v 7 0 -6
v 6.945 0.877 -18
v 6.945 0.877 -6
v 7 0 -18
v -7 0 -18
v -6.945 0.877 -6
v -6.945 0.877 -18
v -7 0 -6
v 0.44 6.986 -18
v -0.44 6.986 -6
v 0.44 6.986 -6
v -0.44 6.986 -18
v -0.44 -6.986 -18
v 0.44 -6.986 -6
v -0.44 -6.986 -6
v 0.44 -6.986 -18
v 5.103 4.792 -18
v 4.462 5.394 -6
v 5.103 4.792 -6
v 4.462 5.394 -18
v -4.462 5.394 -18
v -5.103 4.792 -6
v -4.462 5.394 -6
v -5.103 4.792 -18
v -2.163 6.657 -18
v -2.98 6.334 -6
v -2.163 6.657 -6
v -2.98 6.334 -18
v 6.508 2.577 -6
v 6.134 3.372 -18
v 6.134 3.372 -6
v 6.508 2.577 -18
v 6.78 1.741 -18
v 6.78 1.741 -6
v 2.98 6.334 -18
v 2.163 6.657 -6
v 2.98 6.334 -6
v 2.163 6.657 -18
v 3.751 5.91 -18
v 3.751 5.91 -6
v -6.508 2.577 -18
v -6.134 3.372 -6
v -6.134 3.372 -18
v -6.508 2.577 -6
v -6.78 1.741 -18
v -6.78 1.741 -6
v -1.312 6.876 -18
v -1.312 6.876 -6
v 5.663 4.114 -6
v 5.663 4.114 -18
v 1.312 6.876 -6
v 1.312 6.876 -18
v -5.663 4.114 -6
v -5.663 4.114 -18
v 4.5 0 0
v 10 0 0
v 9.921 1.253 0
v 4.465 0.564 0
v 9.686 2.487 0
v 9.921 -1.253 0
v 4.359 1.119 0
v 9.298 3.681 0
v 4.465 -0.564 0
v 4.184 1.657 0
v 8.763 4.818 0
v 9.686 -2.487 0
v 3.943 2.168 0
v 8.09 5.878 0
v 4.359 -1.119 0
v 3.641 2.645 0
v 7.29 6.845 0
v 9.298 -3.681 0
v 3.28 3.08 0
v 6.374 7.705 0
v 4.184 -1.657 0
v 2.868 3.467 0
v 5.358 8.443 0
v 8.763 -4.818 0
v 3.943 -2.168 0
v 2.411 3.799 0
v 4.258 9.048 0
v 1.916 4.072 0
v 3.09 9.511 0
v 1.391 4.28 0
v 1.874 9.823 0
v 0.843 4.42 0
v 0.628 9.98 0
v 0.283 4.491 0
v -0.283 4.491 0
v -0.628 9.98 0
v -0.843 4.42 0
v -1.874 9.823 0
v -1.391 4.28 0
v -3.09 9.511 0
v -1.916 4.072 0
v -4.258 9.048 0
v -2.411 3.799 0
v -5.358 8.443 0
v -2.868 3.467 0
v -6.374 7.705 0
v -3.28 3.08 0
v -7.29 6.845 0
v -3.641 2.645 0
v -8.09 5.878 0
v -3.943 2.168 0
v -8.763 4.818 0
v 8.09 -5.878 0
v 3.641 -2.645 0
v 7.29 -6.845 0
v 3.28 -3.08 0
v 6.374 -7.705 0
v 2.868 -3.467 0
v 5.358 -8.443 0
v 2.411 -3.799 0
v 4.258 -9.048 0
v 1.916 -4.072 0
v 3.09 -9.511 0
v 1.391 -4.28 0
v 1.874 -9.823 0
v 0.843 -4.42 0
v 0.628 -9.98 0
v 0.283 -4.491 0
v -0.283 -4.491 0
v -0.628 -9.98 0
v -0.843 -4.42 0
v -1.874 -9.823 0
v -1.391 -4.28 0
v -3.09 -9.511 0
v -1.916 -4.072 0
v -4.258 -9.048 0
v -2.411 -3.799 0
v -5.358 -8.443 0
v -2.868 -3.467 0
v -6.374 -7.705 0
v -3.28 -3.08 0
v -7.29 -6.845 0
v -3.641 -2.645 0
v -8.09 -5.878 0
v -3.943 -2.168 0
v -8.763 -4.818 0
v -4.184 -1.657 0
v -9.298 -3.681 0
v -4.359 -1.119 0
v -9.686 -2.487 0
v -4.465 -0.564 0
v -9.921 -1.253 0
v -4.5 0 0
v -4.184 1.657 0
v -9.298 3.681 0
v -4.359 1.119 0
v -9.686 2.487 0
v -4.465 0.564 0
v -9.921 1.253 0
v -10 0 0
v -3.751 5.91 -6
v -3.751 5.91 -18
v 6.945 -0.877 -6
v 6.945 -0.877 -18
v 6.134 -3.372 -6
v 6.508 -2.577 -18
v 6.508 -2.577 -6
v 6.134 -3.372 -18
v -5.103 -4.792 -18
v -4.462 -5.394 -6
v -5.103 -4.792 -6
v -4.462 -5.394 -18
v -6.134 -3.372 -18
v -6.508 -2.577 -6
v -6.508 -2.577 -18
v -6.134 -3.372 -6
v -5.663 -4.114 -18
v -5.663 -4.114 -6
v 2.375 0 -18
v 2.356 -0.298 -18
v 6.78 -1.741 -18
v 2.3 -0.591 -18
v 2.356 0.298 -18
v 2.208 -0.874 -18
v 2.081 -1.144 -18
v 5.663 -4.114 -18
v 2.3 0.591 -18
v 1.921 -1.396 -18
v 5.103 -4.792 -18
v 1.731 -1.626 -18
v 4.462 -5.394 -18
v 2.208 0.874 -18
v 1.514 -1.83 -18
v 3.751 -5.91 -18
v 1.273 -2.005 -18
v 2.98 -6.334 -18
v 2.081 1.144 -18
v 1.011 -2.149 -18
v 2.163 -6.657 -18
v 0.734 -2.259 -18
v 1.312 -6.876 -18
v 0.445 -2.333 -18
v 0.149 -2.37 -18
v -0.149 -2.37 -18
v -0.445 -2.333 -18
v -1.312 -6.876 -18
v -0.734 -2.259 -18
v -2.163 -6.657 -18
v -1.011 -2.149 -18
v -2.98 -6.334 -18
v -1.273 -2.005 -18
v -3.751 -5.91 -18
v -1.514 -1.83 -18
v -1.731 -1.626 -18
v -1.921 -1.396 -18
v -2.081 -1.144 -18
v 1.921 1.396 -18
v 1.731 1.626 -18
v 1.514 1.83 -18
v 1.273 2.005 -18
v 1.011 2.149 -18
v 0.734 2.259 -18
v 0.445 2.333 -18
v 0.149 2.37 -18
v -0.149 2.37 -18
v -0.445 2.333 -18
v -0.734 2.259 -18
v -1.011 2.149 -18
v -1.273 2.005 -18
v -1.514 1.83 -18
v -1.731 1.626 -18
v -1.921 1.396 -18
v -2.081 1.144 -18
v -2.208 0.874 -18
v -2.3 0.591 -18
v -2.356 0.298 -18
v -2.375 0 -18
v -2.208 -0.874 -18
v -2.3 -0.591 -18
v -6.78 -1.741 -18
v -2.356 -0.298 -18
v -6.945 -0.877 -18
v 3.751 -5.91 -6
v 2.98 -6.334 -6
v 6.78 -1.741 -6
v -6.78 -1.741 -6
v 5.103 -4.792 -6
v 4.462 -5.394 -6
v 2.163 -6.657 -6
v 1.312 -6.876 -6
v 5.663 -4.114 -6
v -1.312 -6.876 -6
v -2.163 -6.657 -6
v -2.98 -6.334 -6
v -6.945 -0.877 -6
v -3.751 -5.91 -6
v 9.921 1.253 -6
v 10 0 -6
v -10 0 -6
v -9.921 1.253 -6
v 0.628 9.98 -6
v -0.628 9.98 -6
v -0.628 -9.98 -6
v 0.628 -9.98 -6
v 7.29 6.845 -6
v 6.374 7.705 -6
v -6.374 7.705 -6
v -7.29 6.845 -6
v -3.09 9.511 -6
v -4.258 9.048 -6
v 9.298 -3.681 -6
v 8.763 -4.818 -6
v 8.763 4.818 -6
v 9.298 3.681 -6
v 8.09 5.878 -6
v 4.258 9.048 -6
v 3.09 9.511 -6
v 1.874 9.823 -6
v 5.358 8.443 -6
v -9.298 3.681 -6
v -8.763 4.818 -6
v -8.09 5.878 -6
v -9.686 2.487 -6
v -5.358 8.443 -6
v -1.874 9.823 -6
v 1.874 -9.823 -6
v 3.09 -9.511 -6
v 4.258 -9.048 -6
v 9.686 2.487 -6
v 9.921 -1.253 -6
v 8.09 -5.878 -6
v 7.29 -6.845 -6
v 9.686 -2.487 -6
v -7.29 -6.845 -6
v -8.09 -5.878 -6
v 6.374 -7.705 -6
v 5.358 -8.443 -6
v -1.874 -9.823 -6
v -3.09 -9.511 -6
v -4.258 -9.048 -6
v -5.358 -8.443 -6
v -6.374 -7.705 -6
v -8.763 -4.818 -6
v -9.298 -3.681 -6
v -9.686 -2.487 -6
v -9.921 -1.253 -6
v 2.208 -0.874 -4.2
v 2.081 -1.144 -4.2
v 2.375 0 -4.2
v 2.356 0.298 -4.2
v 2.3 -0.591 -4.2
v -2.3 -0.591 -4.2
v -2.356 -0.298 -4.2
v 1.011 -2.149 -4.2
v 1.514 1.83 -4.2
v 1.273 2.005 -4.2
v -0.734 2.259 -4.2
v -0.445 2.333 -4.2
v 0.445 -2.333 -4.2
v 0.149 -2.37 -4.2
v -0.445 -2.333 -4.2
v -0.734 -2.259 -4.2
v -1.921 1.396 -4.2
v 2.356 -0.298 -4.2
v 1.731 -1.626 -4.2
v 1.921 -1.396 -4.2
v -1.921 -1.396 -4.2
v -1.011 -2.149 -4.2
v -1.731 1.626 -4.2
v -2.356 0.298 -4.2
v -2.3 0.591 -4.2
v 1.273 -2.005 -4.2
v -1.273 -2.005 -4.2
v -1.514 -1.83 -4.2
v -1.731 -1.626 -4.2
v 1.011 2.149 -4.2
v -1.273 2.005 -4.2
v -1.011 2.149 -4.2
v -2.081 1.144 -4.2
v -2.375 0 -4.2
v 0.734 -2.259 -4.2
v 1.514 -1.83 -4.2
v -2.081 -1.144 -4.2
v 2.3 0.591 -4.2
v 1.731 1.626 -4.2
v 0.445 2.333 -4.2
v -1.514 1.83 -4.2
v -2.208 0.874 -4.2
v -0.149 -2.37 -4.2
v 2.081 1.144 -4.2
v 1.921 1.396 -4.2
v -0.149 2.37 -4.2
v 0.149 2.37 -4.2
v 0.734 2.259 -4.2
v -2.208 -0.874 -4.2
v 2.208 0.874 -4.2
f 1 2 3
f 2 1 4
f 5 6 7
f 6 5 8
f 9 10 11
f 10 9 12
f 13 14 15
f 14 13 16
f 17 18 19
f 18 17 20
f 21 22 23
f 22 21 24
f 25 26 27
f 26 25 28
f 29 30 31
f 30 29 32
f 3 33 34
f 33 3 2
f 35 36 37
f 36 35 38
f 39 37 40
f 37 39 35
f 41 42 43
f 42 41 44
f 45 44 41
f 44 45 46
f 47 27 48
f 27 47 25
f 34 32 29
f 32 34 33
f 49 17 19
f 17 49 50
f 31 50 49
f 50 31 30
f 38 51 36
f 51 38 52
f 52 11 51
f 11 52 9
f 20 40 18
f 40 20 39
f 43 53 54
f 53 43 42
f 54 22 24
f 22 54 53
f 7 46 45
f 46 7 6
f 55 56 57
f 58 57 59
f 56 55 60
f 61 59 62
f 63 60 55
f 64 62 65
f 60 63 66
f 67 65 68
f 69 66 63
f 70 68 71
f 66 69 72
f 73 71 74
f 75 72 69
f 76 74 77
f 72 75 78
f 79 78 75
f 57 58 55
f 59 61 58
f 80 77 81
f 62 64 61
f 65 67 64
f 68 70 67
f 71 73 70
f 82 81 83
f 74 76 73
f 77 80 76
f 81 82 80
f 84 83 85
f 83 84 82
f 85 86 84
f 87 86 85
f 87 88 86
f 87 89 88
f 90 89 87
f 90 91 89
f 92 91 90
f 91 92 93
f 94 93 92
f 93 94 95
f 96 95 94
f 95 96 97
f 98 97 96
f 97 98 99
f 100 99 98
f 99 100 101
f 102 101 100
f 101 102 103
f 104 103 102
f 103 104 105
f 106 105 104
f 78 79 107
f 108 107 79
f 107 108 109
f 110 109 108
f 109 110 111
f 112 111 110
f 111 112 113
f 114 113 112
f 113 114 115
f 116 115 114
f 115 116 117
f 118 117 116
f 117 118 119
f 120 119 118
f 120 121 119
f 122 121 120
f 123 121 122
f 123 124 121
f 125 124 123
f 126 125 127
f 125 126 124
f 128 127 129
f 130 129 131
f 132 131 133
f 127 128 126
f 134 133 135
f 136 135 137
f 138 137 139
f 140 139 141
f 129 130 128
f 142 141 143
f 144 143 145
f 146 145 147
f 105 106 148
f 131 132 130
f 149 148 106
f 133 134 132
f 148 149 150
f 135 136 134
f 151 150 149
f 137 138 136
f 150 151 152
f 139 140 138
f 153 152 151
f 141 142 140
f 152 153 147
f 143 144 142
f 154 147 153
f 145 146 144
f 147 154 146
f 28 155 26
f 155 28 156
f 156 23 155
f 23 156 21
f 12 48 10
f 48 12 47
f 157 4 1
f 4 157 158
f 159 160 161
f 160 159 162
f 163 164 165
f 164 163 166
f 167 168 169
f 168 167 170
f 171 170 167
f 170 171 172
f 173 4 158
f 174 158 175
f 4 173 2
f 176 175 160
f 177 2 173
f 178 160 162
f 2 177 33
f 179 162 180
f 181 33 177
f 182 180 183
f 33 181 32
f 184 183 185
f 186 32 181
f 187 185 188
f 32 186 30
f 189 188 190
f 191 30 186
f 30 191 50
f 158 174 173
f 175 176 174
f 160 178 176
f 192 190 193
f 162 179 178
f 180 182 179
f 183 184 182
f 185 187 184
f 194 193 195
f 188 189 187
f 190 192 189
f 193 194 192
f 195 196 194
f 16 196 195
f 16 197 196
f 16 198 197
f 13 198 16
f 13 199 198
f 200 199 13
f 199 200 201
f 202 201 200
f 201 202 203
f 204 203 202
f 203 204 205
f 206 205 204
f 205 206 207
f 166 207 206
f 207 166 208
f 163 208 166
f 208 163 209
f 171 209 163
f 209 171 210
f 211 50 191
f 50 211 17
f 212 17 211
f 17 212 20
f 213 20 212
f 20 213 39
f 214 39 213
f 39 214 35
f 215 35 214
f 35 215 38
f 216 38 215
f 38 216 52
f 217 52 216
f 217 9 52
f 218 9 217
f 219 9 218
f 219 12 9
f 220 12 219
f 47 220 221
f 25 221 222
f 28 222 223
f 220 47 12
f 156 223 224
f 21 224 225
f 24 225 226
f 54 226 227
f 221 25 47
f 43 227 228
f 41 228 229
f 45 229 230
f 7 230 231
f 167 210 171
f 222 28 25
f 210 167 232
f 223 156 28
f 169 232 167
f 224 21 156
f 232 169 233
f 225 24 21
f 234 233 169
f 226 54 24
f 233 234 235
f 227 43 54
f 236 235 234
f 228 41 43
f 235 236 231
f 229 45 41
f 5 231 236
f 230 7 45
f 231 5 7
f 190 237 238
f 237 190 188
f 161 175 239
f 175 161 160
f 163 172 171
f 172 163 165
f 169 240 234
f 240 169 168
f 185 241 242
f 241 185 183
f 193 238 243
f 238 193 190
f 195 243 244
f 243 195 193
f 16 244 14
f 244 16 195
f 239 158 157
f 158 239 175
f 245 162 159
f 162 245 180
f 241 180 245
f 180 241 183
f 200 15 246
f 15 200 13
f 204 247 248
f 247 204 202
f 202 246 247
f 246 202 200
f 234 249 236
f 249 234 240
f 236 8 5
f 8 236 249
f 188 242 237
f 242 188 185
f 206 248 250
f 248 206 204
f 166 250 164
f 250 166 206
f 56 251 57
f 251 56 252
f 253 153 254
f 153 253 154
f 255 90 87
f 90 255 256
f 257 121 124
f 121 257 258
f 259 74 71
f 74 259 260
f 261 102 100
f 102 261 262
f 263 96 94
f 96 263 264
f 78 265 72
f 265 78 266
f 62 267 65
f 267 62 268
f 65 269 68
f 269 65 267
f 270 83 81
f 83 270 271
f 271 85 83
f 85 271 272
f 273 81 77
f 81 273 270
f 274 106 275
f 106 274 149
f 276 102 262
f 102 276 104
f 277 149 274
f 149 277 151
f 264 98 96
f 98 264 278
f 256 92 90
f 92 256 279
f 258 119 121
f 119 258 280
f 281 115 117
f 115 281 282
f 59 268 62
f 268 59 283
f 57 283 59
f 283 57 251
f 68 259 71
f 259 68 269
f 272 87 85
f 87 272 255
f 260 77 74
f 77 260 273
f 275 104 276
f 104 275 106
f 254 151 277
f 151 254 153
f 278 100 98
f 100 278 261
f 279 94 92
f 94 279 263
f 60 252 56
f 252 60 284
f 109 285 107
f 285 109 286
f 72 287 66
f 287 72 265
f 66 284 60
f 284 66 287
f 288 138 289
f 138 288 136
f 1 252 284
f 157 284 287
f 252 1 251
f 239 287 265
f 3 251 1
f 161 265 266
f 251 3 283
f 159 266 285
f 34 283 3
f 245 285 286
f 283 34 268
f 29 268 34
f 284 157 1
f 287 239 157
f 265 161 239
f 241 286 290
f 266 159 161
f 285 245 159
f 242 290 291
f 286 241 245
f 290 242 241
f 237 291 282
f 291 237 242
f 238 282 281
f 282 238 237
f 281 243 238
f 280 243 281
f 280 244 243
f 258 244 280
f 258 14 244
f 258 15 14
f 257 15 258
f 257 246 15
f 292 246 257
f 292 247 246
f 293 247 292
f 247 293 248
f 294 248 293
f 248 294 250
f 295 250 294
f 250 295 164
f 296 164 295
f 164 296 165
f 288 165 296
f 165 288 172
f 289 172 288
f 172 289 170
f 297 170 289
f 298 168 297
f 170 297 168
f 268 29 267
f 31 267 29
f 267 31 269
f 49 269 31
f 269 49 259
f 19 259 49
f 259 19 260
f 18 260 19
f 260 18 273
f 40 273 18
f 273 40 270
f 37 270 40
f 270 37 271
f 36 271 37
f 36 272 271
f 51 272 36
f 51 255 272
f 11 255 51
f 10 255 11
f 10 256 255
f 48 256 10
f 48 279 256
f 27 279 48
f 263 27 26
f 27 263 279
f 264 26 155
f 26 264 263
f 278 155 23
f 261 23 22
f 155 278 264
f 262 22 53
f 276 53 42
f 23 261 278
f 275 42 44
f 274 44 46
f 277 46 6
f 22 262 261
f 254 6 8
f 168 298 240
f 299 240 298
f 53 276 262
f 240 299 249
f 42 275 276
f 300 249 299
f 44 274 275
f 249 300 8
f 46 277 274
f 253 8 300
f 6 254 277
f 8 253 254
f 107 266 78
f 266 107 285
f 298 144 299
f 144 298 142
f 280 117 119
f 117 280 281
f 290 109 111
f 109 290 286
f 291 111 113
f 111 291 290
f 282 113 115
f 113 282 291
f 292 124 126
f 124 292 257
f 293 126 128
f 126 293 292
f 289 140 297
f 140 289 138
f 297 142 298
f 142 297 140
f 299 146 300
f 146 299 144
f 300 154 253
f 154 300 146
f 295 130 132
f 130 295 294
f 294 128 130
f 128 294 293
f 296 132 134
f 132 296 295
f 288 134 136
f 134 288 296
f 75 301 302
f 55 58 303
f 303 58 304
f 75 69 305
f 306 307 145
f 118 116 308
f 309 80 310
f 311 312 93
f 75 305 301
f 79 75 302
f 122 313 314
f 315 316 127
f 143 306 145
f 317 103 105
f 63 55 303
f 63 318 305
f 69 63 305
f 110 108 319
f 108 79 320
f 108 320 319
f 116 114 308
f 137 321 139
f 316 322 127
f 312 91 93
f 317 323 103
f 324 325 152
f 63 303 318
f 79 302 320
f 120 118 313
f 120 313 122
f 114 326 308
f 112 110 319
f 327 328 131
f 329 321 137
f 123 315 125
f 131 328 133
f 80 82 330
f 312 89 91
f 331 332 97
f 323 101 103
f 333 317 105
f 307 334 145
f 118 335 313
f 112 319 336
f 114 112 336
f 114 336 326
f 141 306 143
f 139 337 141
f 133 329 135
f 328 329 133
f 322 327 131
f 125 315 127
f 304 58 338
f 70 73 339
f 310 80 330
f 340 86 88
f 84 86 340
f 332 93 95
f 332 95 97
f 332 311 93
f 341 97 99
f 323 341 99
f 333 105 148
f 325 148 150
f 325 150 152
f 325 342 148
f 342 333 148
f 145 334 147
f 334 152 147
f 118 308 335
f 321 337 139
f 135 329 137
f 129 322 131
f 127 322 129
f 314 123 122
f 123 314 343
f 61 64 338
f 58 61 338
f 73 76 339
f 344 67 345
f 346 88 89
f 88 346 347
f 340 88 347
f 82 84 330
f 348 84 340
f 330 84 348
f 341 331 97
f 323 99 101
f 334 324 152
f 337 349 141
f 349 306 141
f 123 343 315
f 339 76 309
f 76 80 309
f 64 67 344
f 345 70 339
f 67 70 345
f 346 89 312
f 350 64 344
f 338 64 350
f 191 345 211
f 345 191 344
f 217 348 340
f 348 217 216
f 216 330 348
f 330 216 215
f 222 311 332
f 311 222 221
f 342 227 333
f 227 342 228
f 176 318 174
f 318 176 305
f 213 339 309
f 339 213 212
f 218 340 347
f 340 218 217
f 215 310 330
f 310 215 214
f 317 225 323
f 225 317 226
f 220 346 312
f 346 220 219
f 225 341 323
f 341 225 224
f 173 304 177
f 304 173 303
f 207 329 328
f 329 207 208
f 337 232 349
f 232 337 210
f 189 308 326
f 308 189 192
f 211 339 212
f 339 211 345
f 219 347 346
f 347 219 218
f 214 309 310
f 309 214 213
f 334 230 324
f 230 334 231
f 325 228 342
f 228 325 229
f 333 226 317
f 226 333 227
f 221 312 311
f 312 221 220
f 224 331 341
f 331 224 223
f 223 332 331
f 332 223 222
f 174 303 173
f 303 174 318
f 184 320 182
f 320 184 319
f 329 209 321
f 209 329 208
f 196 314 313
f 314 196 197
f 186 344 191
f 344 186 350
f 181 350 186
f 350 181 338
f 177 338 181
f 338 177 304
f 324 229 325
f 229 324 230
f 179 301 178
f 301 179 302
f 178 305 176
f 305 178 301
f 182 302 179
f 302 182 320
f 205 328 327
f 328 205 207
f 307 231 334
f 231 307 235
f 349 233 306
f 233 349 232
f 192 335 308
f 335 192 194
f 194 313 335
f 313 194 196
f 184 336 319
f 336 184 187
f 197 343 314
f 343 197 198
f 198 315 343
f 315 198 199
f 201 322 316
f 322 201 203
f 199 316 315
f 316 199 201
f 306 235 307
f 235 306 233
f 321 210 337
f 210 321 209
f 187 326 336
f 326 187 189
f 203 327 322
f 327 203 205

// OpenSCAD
$fn = 50;


difference() {
	union() {
		translate(v = [0, 0, -18.0000000000]) {
			cylinder(h = 18, r = 7.0000000000);
		}
		translate(v = [0, 0, -6.0000000000]) {
			cylinder(h = 6, r = 10.0000000000);
		}
	}
	union() {
		translate(v = [0, 0, 0]) {
			rotate(a = [0, 0, 0]) {
				difference() {
					union() {
						#translate(v = [0, 0, -18.0000000000]) {
							cylinder(h = 18, r = 2.2500000000);
						}
						#translate(v = [0, 0, -4.2000000000]) {
							cylinder(h = 4.2000000000, r1 = 2.3750000000, r2 = 4.5000000000);
						}
						#translate(v = [0, 0, -18.0000000000]) {
							cylinder(h = 18, r = 2.3750000000);
						}
						#translate(v = [0, 0, -18.0000000000]) {
							cylinder(h = 18, r = 2.2500000000);
						}
					}
					union();
				}
			}
		}
	}
}
